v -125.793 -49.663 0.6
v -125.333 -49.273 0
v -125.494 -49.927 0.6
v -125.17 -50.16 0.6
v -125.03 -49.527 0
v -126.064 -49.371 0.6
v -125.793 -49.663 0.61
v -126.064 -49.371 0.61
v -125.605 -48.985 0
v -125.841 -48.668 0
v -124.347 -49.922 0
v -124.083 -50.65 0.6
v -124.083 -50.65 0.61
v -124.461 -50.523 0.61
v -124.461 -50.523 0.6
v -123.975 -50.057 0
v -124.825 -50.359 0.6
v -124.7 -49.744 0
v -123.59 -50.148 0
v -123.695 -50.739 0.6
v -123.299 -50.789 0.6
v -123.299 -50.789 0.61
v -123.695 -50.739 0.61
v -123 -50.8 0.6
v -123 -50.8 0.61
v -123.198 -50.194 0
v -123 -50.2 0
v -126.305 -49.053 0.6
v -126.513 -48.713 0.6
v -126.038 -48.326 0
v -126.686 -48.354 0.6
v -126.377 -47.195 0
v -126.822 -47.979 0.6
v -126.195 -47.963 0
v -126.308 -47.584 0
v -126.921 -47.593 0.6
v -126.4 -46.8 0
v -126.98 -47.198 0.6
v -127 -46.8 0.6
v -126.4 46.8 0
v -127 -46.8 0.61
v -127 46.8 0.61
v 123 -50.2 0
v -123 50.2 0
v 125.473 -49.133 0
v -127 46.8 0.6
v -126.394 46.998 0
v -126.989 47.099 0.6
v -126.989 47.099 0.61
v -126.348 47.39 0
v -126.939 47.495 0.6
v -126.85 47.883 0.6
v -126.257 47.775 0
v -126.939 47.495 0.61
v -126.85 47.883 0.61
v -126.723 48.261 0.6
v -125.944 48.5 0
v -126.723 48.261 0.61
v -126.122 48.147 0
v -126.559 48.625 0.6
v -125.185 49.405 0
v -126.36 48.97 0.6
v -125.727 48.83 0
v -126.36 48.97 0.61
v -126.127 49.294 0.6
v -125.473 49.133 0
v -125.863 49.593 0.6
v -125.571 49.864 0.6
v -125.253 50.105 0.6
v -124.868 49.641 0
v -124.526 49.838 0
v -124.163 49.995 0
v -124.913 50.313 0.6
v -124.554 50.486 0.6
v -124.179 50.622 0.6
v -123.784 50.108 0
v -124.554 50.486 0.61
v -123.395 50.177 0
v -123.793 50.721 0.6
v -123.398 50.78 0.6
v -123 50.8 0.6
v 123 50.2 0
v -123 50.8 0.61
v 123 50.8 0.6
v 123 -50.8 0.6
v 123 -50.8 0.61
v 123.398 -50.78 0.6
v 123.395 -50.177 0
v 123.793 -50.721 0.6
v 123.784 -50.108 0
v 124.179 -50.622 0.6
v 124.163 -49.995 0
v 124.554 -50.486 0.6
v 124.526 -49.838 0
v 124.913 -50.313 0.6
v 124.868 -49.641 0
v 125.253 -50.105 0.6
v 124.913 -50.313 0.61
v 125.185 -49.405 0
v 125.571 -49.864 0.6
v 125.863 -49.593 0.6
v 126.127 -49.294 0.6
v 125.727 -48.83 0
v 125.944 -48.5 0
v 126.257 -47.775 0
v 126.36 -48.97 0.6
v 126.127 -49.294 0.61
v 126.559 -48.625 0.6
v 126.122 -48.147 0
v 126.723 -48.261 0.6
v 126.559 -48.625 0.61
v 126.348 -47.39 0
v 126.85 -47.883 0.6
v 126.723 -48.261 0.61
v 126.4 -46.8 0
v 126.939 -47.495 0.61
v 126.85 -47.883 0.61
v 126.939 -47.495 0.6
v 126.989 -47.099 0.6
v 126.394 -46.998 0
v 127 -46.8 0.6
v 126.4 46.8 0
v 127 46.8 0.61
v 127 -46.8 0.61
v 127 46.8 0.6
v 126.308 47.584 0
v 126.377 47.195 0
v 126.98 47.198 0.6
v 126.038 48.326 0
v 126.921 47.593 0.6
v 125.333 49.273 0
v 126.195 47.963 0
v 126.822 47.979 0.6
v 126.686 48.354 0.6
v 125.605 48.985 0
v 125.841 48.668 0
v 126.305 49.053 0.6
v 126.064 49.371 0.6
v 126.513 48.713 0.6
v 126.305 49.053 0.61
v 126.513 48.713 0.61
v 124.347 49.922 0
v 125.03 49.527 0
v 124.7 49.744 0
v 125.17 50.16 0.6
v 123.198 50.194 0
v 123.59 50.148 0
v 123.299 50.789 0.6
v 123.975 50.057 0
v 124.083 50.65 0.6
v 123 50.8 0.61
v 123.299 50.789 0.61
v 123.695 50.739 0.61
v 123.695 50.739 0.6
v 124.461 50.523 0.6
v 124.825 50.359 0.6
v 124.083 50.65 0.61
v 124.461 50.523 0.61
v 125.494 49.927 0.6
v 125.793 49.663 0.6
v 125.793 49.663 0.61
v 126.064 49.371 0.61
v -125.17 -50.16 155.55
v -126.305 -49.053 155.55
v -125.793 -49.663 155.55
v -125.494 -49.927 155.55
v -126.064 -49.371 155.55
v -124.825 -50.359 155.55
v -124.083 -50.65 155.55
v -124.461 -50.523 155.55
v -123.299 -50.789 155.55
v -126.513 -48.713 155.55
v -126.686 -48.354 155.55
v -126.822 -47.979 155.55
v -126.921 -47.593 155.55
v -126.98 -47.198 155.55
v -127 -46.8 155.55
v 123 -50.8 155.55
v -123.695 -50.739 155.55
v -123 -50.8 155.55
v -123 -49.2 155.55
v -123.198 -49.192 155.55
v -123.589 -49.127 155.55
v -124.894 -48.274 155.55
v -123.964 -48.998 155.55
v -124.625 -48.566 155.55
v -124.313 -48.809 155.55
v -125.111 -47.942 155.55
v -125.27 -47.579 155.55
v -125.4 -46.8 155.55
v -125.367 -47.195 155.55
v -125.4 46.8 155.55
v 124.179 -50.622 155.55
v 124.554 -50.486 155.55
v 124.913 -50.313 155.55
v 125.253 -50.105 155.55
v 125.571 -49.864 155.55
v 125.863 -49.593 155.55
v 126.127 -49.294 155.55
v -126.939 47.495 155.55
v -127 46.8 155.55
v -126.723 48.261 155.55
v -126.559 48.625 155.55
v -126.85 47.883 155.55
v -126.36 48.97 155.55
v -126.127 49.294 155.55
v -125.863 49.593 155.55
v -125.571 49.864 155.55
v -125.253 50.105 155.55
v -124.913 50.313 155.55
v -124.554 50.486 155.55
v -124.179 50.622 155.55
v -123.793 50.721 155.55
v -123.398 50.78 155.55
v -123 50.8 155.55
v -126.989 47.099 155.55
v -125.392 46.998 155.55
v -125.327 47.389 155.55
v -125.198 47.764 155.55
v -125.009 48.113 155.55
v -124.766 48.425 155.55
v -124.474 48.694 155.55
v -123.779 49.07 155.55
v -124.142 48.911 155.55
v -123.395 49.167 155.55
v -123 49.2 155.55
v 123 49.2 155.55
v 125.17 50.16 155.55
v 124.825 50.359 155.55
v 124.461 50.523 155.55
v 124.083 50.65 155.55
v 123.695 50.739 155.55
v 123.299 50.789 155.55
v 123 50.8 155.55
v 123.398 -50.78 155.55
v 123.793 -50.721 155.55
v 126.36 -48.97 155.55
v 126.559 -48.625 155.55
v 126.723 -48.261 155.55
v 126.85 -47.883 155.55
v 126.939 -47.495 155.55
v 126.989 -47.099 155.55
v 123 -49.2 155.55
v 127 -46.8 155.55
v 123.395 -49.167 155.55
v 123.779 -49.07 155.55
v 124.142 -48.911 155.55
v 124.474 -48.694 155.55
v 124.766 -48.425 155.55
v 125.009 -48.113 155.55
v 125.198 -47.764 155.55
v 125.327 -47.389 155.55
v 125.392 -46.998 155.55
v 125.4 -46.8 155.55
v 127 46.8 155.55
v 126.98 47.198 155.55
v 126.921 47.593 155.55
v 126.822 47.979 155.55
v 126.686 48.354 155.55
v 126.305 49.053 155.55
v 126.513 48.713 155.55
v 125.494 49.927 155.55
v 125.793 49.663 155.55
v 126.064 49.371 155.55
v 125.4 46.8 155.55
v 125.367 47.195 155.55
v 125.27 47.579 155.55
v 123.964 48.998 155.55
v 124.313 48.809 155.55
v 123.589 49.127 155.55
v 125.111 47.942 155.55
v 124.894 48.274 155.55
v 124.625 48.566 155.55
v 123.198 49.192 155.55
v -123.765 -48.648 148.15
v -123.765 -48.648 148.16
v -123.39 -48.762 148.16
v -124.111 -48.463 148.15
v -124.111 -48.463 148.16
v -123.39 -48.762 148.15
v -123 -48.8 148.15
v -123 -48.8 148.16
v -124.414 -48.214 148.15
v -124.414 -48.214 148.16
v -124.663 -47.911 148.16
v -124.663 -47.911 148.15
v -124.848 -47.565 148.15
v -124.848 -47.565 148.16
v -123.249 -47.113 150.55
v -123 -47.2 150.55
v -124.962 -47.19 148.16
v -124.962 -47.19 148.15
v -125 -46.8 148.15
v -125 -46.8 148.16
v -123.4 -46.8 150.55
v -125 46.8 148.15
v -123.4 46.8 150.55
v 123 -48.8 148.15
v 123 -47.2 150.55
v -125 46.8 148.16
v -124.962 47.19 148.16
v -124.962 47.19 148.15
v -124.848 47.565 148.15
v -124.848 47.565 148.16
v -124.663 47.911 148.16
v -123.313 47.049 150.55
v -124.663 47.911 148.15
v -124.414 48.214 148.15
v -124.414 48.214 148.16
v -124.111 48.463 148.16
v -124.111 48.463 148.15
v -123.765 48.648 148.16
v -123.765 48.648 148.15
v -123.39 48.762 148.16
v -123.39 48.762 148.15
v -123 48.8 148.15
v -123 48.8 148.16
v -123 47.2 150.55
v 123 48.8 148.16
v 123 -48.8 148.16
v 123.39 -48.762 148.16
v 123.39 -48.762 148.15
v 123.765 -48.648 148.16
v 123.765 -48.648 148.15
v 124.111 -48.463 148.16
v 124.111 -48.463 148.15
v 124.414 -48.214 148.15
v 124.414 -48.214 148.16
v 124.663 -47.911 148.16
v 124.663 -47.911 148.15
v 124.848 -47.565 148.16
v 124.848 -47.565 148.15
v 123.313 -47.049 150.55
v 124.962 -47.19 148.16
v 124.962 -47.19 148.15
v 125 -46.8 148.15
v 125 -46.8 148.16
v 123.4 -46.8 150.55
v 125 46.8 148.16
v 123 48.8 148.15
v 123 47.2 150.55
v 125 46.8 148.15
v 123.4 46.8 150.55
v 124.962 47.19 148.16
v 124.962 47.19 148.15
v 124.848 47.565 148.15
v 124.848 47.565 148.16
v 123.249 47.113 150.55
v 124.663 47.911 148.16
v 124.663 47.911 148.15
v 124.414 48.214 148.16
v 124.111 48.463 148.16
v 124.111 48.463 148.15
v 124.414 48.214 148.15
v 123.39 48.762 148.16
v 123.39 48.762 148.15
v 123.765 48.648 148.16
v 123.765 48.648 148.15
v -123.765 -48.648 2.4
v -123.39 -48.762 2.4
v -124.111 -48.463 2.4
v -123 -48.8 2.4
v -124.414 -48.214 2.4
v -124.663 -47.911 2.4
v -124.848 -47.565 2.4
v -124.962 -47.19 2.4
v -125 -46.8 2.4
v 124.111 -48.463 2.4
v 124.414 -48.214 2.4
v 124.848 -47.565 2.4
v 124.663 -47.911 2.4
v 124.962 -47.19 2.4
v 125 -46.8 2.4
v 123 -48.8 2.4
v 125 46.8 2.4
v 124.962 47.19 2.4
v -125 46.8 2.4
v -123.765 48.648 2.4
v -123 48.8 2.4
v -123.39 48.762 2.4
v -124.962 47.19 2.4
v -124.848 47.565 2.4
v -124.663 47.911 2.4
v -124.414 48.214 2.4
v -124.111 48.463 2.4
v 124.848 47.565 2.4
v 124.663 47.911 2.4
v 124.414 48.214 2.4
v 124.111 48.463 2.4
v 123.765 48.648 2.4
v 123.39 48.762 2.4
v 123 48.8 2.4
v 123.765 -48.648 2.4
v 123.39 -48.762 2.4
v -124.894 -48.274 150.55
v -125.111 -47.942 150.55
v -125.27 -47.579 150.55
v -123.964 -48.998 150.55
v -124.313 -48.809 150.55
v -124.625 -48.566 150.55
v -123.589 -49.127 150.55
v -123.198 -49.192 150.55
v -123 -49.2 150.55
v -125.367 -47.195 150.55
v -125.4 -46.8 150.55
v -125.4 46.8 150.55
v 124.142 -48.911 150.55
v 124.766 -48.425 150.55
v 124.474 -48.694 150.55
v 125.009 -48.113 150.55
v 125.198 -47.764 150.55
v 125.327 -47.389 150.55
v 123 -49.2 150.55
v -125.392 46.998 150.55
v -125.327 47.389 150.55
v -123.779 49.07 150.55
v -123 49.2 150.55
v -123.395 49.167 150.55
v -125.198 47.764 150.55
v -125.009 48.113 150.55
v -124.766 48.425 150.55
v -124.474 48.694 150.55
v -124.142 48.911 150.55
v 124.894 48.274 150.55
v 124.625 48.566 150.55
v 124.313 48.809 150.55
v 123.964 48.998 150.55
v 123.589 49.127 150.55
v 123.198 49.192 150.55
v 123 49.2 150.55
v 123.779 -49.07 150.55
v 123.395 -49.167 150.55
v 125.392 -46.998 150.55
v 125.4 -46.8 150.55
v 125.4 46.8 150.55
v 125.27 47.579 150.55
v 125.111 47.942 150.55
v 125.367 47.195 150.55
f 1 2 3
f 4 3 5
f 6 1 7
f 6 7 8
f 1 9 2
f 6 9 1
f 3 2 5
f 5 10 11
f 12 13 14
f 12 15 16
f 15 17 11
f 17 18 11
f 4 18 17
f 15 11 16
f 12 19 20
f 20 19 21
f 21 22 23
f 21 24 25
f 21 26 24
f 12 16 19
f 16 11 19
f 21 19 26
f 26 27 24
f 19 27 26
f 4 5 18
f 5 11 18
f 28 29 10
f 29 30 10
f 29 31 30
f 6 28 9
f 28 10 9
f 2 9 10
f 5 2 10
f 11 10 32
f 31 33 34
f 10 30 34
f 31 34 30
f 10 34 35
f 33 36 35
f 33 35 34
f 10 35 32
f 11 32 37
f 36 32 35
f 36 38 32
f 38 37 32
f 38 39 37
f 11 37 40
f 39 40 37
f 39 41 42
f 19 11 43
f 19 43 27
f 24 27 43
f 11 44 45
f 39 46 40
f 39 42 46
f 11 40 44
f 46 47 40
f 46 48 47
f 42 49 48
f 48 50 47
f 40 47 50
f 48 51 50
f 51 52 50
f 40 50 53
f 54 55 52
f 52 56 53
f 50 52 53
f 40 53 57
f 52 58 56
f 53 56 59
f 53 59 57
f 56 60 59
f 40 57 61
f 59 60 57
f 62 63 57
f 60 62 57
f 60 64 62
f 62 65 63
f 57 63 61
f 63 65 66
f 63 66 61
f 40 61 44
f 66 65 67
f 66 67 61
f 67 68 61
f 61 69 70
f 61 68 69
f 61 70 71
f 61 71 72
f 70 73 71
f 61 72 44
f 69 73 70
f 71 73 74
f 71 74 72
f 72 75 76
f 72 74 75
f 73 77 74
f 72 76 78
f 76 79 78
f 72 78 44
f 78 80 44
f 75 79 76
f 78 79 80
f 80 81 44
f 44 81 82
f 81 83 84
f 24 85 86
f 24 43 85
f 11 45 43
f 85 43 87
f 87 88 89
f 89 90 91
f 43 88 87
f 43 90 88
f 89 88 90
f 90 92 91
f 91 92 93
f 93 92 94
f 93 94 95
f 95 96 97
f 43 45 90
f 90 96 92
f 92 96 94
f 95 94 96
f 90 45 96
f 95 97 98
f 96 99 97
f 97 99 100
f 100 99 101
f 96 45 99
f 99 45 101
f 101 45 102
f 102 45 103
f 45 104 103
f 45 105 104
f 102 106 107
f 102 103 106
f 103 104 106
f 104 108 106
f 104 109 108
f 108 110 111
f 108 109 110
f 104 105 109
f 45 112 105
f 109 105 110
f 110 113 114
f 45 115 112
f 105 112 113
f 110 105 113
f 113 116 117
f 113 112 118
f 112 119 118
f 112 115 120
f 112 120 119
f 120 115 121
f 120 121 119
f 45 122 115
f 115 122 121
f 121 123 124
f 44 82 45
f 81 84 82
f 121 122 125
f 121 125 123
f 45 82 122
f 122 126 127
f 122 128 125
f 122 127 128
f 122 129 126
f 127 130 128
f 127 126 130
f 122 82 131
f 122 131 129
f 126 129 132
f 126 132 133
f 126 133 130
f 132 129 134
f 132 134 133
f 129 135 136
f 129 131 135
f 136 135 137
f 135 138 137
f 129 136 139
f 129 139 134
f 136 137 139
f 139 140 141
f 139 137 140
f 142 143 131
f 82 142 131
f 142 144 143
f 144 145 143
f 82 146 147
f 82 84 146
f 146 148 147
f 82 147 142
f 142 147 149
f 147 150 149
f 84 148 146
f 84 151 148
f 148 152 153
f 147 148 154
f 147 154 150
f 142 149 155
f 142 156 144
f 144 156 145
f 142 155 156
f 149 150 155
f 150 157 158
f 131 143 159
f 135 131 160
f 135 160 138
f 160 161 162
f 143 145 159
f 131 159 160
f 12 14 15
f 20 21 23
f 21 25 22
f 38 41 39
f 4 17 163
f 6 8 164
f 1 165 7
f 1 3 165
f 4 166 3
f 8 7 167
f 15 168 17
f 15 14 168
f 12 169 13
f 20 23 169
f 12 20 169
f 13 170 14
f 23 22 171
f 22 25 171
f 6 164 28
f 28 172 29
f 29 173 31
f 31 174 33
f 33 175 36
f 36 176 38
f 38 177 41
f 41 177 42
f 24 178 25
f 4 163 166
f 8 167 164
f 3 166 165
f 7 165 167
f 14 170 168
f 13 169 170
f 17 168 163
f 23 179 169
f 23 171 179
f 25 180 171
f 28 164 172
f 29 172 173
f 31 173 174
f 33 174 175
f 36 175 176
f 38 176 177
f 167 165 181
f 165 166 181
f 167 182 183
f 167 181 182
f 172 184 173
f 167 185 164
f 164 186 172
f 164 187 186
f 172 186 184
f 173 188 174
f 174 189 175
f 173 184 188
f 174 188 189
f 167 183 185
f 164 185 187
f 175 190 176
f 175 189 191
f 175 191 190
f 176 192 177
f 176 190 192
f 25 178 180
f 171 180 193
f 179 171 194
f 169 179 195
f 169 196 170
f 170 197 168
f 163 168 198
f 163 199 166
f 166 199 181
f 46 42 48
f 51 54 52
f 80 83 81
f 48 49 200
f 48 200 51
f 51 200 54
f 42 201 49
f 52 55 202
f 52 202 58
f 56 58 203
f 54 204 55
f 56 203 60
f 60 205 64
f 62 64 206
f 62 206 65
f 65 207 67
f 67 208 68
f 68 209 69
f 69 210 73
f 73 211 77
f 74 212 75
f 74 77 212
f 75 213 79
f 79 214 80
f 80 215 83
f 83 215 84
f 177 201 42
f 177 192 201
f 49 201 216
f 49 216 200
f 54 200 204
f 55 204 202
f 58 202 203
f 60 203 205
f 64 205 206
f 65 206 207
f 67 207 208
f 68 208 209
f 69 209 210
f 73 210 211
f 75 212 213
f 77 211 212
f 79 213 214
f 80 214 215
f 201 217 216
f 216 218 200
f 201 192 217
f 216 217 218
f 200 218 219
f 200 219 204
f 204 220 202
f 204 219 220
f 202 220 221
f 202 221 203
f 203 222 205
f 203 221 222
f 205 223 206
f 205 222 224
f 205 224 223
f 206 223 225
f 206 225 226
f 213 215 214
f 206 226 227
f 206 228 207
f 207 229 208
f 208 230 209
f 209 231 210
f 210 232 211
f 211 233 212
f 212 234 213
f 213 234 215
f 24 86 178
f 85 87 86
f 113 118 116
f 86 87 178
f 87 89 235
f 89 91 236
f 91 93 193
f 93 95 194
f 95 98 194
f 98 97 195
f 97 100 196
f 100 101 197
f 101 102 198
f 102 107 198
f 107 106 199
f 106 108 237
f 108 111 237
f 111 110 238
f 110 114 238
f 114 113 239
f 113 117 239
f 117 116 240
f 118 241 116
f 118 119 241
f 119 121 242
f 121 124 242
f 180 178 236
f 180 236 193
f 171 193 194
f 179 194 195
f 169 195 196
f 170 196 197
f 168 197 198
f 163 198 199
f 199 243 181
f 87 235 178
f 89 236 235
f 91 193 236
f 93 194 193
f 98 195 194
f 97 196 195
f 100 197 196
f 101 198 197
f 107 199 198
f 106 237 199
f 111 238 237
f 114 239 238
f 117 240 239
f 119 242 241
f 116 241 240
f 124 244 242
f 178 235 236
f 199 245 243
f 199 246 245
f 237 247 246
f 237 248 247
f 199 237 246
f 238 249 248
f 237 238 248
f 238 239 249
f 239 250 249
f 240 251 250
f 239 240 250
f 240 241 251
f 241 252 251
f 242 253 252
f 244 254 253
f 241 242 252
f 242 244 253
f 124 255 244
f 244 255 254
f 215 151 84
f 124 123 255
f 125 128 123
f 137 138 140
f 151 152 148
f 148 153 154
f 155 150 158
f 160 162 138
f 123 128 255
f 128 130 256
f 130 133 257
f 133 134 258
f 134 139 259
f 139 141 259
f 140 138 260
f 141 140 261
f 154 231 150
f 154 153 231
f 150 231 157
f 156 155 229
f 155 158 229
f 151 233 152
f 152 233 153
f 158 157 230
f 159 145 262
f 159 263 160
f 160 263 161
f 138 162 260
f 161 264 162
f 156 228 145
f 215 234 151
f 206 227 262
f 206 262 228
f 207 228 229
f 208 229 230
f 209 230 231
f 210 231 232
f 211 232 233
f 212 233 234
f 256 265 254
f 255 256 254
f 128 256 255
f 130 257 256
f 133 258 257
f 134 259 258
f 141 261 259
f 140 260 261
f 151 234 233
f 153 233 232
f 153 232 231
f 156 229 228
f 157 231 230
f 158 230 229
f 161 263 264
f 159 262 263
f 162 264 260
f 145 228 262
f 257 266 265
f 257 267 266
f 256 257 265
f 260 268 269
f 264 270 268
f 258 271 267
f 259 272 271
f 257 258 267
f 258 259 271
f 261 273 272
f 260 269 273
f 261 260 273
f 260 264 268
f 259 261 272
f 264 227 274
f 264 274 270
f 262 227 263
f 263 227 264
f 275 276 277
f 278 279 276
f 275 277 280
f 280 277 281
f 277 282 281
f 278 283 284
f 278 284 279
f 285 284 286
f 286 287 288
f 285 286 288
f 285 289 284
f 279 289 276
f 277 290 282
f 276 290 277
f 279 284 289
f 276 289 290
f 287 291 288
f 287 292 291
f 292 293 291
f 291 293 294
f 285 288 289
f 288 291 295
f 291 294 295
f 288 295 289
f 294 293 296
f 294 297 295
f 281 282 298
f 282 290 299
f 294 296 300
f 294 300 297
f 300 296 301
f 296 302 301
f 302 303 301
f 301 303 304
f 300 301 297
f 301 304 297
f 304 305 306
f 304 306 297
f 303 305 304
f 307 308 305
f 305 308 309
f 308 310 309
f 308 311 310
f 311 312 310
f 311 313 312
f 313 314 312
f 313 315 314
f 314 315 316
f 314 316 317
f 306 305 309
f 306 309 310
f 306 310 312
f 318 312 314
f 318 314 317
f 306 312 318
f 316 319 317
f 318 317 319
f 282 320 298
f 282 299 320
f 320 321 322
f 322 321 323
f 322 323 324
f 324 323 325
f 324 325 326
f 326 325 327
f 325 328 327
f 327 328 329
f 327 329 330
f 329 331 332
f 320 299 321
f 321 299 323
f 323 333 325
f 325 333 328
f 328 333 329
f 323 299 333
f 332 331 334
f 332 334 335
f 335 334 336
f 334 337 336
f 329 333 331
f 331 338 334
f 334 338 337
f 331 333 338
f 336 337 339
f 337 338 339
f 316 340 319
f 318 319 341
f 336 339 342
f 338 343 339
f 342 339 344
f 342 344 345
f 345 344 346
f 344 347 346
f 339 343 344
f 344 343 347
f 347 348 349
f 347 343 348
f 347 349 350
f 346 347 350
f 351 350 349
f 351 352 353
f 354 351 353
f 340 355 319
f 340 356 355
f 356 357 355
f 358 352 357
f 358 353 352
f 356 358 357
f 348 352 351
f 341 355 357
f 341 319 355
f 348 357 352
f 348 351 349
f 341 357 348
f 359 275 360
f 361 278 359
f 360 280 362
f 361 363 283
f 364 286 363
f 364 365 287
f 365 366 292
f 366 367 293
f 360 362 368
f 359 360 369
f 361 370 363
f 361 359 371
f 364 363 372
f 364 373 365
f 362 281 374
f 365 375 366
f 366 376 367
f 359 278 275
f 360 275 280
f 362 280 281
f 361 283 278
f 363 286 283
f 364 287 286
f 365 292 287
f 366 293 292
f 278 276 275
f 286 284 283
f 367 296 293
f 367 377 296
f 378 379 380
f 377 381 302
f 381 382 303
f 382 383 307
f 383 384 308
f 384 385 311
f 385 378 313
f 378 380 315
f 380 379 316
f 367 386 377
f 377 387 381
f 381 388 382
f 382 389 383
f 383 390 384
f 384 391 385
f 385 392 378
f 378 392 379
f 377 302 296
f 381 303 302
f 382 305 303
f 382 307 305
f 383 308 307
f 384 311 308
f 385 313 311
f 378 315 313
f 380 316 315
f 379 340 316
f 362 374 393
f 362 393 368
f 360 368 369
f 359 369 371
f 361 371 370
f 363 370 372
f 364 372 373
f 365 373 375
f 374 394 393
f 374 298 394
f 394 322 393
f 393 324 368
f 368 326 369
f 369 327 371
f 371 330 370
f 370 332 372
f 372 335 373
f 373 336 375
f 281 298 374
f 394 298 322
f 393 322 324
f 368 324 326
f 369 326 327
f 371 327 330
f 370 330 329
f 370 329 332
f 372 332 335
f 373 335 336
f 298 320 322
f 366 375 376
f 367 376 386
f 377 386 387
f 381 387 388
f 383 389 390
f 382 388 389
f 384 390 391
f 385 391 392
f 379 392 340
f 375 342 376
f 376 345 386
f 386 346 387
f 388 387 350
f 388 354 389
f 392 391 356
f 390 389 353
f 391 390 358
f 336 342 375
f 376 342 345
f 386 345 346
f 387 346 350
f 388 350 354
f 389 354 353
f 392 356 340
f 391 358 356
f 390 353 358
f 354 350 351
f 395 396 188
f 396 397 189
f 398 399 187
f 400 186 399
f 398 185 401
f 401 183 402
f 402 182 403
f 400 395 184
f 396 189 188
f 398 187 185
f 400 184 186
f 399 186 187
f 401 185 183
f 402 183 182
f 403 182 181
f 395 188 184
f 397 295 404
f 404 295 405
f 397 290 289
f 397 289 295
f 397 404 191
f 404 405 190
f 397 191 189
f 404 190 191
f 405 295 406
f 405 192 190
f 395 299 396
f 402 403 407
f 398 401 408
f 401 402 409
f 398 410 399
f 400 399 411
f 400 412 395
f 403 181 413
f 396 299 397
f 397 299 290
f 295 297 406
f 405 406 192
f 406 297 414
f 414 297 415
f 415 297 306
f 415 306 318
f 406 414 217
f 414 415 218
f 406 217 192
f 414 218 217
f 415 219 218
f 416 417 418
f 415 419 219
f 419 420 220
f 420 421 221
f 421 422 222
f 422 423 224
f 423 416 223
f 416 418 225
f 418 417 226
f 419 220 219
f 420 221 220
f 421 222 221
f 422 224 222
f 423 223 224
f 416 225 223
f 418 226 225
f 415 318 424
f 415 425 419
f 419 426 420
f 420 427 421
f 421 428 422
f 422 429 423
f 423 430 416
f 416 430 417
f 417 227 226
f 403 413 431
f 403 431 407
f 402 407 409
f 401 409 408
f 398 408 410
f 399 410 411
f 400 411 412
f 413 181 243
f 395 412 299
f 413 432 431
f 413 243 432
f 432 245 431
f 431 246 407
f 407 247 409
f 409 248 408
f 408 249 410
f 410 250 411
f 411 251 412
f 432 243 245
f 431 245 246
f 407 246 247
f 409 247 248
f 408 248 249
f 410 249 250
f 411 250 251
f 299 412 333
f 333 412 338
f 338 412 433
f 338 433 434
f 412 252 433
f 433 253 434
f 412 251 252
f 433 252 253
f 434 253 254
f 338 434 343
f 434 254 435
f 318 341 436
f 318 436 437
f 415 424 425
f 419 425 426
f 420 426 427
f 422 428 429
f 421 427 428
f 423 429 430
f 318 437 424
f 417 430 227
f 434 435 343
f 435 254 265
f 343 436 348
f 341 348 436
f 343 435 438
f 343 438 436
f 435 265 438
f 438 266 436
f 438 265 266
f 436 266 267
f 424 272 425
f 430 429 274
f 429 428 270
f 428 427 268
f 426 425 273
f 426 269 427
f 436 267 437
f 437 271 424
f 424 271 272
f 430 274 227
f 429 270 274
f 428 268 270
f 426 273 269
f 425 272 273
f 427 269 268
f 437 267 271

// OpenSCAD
// file: photo_box_001.scad
// photo_box — shipping box for photos, with a proud inset lid
//
// Two parts, single-colour PLA, both print without supports.
//   box  prints open-face-up, floor on the bed
//   lid  prints top-face-down, skirt pointing up
//
// The four numbers below are the ones to change. Everything else is
// derived, so the model stays coherent at any size.

// ---- outside envelope (lid on) ----------------------------------------
box_w = 254;      // 10"    width
box_d = 101.6;    // 4"     depth
box_h = 158.75;   // 6.25"  height, lid seated

// ---- thicknesses ------------------------------------------------------
wall_t  = 2.0;    // side walls        (5 perimeters @ 0.4)
floor_t = 2.4;    // box floor         (6 perimeters)
lid_t   = 3.2;    // lid plate         (8 perimeters)

// ---- lid interface ----------------------------------------------------
rabbet_h = 5.0;   // how far the ledge sits below the rim
ledge_w  = 2.0;   // horizontal width of the ledge
rim_t    = 1.6;   // standing rim above the ledge (4 perimeters)
ramp_h   = 2.4;   // ramp thickening the wall into the rabbet zone. Rises 2.4
                  // while growing 1.6 inward — 34 deg off vertical, so it sits
                  // clear of the 45 deg self-support limit rather than on it.
skirt_w  = 1.6;   // lid skirt thickness (4 perimeters)
clr      = 0.3;   // lateral clearance, skirt to rim (PLA)
seat_gap = 0.4;   // skirt clears the ledge — the rim is the seat, not the ledge

// ---- cosmetic / ergonomic --------------------------------------------
corner_r   = 4.0;  // outside corner radius
lid_relief = 0.25; // lid plate inset from the outer face, per side
skirt_cham = 1.0;  // 45 deg lead-in so the lid self-centres on the way in
foot_cham  = 0.6;  // bottom outer edge — chamfer, not a round (elephant's foot)
grip_tab   = 6.0;  // lid grab tabs on front/back; set 0 for a plain rectangle
grip_tab_w = 60.0;

// ---- output -----------------------------------------------------------
part = "both";     // "box" | "lid" | "both"

$fa = 2;
$fs = 0.4;

// ---- derived ----------------------------------------------------------
body_h   = box_h - lid_t;        // rim top: the lid plate sits on this
ledge_z  = body_h - rabbet_h;    // up-facing ledge surface
ramp_z   = ledge_z - ramp_h;     // where the wall starts thickening
top_wall = rim_t + ledge_w;      // wall thickness through the rabbet zone
skirt_h  = rabbet_h - seat_gap;  // skirt stops short of the ledge

// Rounded-rectangle prism, centred in x/y, rising from z = 0.
module rrect_prism(w, d, r, h) {
    rr = max(min(r, w / 2 - 0.01, d / 2 - 0.01), 0.01);
    linear_extrude(height = h)
        offset(r = rr)
            square([w - 2 * rr, d - 2 * rr], center = true);
}

// ---- box --------------------------------------------------------------

module box_outer() {
    // Chamfered foot, then a straight prism the rest of the way up.
    hull() {
        rrect_prism(box_w - 2 * foot_cham, box_d - 2 * foot_cham,
                    corner_r - foot_cham, 0.01);
        translate([0, 0, foot_cham]) rrect_prism(box_w, box_d, corner_r, 0.01);
    }
    translate([0, 0, foot_cham])
        rrect_prism(box_w, box_d, corner_r, body_h - foot_cham);
}

// The cavity is cut in three stacked pieces. Each one is *wider* than the
// piece below it or tapers into it, so every newly exposed surface faces up
// or sits at 45 deg — nothing to support.
module box_cavity() {
    // Main volume, floor up to the ramp.
    translate([0, 0, floor_t])
        rrect_prism(box_w - 2 * wall_t, box_d - 2 * wall_t,
                    corner_r - wall_t, ramp_z - floor_t + 0.01);

    // 45 deg ramp: the wall thickens inward from wall_t to top_wall, giving
    // the rabbet something solid to be cut out of and hooping the top of a
    // large thin-walled box.
    hull() {
        translate([0, 0, ramp_z])
            rrect_prism(box_w - 2 * wall_t, box_d - 2 * wall_t,
                        corner_r - wall_t, 0.01);
        translate([0, 0, ledge_z - 0.01])
            rrect_prism(box_w - 2 * top_wall, box_d - 2 * top_wall,
                        corner_r - top_wall, 0.01);
    }

    // Rabbet: a wider cut above the ledge leaves the ledge as an up-facing
    // shelf and the rim as a standing fin.
    translate([0, 0, ledge_z])
        rrect_prism(box_w - 2 * rim_t, box_d - 2 * rim_t,
                    corner_r - rim_t, rabbet_h + 1);
}

module box() {
    difference() {
        box_outer();
        box_cavity();
    }
}

// ---- lid --------------------------------------------------------------
// Modelled in the assembled orientation: plate on top, skirt hanging down
// into the rabbet. Flipped for printing at the bottom of the file.

skirt_ow = box_w - 2 * rim_t - 2 * clr;
skirt_od = box_d - 2 * rim_t - 2 * clr;
skirt_or = corner_r - rim_t - clr;
skirt_z0 = body_h - skirt_h;

module lid() {
    // Plate, plus grab tabs overhanging the front and back walls.
    translate([0, 0, body_h]) {
        rrect_prism(box_w - 2 * lid_relief, box_d - 2 * lid_relief,
                    corner_r - lid_relief, lid_t);
        if (grip_tab > 0)
            rrect_prism(grip_tab_w,
                        box_d - 2 * lid_relief + 2 * grip_tab, 3, lid_t);
    }

    // Skirt: lateral register only. Its outer face runs against the rim's
    // inner face; a 45 deg lead-in lets it find the opening on the way down.
    difference() {
        union() {
            hull() {
                translate([0, 0, skirt_z0])
                    rrect_prism(skirt_ow - 2 * skirt_cham,
                                skirt_od - 2 * skirt_cham,
                                skirt_or - skirt_cham, 0.01);
                translate([0, 0, skirt_z0 + skirt_cham])
                    rrect_prism(skirt_ow, skirt_od, skirt_or, 0.01);
            }
            translate([0, 0, skirt_z0 + skirt_cham])
                rrect_prism(skirt_ow, skirt_od, skirt_or,
                            skirt_h - skirt_cham + 0.01);
        }
        translate([0, 0, skirt_z0 - 1])
            rrect_prism(skirt_ow - 2 * skirt_w, skirt_od - 2 * skirt_w,
                        skirt_or - skirt_w, skirt_h + 2);
    }
}

// Lid rotated onto its print orientation: visible face down on the bed.
module lid_printed() {
    translate([0, 0, box_h]) rotate([180, 0, 0]) lid();
}

// ---- output -----------------------------------------------------------

if (part == "box") {
    box();
} else if (part == "lid") {
    lid_printed();
} else if (part == "both") {
    // Exploded preview — lid lifted clear so the rabbet is visible.
    box();
    translate([0, 0, 40]) lid();
}
// Any other value emits nothing, so this file can be included and
// section-cut for debugging without drawing the whole model.
// main file
// Box-only print layout (open face up, floor on the bed, support-free).
// The trailing assignment overrides part="both" from the include.
include <photo_box_001.scad>
part = "box";
